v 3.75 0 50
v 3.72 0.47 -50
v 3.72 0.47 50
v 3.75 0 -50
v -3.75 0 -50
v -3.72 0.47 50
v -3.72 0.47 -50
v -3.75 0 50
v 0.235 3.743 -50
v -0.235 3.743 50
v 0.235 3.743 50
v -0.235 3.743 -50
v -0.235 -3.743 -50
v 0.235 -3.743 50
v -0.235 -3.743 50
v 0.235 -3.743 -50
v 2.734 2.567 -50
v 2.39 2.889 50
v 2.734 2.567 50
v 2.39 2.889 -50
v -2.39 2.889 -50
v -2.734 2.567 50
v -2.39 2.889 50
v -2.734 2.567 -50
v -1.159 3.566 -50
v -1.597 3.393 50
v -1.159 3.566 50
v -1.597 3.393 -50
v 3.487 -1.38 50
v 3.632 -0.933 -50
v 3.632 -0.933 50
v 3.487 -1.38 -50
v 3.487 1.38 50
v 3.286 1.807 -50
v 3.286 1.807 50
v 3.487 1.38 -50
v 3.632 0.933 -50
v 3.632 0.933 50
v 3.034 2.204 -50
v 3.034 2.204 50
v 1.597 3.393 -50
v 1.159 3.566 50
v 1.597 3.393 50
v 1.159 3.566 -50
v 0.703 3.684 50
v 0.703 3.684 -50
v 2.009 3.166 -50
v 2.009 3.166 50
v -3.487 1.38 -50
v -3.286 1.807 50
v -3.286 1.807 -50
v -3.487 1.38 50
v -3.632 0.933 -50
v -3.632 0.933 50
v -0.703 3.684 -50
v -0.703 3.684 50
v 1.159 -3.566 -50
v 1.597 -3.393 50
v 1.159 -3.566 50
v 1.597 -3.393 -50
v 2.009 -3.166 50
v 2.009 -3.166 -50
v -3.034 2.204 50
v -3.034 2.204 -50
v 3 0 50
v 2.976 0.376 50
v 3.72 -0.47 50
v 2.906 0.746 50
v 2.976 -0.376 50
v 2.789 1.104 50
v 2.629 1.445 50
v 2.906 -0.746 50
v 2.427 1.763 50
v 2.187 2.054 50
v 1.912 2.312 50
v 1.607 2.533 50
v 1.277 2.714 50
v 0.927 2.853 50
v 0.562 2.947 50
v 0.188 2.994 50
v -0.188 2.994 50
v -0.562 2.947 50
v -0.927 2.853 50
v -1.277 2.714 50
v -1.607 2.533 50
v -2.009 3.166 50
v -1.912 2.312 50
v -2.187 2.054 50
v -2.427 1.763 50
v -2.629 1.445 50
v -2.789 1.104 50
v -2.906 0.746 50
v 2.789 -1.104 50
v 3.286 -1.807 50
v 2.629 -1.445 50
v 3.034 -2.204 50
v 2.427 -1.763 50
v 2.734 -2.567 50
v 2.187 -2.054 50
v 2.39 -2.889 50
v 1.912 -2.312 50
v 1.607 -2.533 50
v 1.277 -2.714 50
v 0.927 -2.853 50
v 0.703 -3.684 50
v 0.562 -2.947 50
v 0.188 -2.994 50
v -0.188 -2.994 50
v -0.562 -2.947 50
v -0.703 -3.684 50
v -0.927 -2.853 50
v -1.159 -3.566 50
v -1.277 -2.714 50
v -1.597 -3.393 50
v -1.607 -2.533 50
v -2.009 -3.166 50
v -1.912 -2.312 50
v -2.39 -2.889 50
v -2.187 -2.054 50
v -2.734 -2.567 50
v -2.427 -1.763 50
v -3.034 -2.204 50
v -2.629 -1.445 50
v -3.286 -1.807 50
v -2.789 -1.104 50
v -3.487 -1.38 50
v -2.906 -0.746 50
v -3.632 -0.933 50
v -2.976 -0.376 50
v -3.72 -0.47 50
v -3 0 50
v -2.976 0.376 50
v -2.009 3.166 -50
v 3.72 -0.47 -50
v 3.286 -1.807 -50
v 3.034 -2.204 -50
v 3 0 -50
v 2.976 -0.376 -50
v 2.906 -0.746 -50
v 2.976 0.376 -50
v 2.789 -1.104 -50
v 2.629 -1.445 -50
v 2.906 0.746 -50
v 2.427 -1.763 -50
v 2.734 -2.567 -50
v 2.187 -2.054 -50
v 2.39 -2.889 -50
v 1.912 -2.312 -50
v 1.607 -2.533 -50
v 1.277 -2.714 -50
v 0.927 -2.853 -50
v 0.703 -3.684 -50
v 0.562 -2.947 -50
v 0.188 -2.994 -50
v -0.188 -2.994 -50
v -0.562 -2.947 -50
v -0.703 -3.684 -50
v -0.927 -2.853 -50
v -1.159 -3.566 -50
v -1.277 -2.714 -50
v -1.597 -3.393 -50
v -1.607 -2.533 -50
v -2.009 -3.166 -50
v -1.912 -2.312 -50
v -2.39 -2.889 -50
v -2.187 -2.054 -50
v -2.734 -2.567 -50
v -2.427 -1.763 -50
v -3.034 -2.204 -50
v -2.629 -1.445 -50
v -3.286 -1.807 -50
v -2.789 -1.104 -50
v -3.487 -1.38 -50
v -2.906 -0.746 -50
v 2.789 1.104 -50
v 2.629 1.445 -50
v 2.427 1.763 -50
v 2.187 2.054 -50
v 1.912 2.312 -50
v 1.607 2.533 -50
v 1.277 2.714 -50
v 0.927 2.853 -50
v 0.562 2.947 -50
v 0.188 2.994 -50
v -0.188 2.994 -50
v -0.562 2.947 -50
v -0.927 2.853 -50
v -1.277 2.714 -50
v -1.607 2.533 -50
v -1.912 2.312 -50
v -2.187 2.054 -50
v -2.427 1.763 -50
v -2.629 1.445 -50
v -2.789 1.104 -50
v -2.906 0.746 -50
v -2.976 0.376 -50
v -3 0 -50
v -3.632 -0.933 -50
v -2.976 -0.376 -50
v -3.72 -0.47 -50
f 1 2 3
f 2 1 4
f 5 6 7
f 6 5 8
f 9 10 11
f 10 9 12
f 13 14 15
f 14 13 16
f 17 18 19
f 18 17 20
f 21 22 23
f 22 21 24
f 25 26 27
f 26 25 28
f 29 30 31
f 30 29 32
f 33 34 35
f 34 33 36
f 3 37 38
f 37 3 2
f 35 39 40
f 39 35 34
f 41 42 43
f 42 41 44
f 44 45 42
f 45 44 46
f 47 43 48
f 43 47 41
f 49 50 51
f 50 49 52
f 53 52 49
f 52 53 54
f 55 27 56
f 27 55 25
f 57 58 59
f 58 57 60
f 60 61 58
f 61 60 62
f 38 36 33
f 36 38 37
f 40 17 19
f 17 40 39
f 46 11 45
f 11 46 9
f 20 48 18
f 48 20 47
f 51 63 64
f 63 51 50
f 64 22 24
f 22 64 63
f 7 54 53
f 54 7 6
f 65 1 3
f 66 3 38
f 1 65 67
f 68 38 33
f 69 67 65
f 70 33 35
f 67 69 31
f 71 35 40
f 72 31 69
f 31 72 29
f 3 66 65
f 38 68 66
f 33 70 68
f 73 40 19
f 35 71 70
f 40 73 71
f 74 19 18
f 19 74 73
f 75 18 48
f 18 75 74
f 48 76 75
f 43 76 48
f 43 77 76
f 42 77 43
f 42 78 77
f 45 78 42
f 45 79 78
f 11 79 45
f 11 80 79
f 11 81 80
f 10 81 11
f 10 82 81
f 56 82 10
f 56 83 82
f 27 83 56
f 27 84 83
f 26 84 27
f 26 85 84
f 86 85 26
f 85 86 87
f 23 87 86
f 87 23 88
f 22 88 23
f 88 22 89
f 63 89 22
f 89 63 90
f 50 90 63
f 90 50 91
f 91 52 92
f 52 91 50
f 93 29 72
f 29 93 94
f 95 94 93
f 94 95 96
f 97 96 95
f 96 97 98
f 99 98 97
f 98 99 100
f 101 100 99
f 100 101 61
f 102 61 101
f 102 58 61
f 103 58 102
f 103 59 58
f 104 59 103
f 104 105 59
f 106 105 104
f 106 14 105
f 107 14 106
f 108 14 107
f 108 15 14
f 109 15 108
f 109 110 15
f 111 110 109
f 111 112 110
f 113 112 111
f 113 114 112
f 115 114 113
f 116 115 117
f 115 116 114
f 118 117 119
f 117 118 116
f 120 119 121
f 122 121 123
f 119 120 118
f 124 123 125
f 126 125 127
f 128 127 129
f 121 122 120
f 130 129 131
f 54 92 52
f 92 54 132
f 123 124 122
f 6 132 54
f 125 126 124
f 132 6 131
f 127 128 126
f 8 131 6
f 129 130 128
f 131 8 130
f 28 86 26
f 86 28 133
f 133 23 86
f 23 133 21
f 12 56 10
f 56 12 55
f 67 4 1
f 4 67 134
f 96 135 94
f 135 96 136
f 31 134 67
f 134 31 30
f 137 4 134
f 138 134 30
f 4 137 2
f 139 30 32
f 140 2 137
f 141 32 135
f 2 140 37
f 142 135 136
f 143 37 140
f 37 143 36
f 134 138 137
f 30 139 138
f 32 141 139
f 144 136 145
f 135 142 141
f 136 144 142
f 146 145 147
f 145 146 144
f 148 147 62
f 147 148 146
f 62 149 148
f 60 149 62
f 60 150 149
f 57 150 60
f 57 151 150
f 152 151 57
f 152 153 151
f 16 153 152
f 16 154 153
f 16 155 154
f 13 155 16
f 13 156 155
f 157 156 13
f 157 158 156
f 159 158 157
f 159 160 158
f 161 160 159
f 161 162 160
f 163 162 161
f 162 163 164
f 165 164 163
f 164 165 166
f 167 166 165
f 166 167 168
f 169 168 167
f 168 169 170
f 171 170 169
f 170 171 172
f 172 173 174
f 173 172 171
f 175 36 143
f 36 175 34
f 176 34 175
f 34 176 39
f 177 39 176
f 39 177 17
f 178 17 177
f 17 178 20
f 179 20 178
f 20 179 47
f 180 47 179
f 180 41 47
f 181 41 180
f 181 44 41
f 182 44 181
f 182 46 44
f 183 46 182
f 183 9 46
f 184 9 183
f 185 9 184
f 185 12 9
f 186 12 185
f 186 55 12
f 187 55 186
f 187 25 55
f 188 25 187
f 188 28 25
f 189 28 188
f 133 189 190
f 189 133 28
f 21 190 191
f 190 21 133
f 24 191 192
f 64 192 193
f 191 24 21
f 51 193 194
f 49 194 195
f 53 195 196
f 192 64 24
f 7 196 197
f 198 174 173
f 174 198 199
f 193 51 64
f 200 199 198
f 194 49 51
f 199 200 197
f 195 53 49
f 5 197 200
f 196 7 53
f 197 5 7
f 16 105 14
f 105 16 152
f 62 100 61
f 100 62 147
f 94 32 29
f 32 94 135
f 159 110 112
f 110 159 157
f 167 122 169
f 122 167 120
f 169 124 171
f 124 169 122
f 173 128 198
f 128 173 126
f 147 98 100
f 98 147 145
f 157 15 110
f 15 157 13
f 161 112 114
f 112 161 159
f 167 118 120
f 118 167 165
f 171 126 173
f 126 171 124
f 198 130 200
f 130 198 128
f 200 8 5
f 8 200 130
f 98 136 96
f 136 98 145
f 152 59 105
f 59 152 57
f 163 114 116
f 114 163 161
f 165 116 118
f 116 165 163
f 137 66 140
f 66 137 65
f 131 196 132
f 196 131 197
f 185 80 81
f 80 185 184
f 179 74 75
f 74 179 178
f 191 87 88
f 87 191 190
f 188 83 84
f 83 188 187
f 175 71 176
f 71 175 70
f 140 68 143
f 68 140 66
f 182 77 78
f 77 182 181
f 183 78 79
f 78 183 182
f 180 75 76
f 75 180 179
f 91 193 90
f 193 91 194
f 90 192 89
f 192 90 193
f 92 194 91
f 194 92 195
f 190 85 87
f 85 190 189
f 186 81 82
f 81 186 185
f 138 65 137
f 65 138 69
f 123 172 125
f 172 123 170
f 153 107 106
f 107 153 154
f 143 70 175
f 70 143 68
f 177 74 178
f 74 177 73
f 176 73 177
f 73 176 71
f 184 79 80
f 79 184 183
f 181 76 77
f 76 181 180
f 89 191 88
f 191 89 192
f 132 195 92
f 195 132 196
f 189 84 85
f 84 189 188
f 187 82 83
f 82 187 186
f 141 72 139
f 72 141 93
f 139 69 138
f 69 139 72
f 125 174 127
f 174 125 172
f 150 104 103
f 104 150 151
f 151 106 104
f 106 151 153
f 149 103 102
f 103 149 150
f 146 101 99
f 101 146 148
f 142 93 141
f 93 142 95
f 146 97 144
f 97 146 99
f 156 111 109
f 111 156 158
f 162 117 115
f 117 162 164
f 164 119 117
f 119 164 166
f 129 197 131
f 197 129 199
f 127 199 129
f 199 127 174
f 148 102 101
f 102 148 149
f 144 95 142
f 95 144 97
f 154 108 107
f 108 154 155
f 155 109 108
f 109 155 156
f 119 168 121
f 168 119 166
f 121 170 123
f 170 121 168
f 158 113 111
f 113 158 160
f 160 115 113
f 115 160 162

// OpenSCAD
$fn = 50;


difference() {
	union() {
		translate(v = [0, 0, -50.0000000000]) {
			cylinder(h = 100, r = 3.7500000000);
		}
	}
	union() {
		translate(v = [0, 0, -100.0000000000]) {
			cylinder(h = 200, r = 3.0000000000);
		}
	}
}
